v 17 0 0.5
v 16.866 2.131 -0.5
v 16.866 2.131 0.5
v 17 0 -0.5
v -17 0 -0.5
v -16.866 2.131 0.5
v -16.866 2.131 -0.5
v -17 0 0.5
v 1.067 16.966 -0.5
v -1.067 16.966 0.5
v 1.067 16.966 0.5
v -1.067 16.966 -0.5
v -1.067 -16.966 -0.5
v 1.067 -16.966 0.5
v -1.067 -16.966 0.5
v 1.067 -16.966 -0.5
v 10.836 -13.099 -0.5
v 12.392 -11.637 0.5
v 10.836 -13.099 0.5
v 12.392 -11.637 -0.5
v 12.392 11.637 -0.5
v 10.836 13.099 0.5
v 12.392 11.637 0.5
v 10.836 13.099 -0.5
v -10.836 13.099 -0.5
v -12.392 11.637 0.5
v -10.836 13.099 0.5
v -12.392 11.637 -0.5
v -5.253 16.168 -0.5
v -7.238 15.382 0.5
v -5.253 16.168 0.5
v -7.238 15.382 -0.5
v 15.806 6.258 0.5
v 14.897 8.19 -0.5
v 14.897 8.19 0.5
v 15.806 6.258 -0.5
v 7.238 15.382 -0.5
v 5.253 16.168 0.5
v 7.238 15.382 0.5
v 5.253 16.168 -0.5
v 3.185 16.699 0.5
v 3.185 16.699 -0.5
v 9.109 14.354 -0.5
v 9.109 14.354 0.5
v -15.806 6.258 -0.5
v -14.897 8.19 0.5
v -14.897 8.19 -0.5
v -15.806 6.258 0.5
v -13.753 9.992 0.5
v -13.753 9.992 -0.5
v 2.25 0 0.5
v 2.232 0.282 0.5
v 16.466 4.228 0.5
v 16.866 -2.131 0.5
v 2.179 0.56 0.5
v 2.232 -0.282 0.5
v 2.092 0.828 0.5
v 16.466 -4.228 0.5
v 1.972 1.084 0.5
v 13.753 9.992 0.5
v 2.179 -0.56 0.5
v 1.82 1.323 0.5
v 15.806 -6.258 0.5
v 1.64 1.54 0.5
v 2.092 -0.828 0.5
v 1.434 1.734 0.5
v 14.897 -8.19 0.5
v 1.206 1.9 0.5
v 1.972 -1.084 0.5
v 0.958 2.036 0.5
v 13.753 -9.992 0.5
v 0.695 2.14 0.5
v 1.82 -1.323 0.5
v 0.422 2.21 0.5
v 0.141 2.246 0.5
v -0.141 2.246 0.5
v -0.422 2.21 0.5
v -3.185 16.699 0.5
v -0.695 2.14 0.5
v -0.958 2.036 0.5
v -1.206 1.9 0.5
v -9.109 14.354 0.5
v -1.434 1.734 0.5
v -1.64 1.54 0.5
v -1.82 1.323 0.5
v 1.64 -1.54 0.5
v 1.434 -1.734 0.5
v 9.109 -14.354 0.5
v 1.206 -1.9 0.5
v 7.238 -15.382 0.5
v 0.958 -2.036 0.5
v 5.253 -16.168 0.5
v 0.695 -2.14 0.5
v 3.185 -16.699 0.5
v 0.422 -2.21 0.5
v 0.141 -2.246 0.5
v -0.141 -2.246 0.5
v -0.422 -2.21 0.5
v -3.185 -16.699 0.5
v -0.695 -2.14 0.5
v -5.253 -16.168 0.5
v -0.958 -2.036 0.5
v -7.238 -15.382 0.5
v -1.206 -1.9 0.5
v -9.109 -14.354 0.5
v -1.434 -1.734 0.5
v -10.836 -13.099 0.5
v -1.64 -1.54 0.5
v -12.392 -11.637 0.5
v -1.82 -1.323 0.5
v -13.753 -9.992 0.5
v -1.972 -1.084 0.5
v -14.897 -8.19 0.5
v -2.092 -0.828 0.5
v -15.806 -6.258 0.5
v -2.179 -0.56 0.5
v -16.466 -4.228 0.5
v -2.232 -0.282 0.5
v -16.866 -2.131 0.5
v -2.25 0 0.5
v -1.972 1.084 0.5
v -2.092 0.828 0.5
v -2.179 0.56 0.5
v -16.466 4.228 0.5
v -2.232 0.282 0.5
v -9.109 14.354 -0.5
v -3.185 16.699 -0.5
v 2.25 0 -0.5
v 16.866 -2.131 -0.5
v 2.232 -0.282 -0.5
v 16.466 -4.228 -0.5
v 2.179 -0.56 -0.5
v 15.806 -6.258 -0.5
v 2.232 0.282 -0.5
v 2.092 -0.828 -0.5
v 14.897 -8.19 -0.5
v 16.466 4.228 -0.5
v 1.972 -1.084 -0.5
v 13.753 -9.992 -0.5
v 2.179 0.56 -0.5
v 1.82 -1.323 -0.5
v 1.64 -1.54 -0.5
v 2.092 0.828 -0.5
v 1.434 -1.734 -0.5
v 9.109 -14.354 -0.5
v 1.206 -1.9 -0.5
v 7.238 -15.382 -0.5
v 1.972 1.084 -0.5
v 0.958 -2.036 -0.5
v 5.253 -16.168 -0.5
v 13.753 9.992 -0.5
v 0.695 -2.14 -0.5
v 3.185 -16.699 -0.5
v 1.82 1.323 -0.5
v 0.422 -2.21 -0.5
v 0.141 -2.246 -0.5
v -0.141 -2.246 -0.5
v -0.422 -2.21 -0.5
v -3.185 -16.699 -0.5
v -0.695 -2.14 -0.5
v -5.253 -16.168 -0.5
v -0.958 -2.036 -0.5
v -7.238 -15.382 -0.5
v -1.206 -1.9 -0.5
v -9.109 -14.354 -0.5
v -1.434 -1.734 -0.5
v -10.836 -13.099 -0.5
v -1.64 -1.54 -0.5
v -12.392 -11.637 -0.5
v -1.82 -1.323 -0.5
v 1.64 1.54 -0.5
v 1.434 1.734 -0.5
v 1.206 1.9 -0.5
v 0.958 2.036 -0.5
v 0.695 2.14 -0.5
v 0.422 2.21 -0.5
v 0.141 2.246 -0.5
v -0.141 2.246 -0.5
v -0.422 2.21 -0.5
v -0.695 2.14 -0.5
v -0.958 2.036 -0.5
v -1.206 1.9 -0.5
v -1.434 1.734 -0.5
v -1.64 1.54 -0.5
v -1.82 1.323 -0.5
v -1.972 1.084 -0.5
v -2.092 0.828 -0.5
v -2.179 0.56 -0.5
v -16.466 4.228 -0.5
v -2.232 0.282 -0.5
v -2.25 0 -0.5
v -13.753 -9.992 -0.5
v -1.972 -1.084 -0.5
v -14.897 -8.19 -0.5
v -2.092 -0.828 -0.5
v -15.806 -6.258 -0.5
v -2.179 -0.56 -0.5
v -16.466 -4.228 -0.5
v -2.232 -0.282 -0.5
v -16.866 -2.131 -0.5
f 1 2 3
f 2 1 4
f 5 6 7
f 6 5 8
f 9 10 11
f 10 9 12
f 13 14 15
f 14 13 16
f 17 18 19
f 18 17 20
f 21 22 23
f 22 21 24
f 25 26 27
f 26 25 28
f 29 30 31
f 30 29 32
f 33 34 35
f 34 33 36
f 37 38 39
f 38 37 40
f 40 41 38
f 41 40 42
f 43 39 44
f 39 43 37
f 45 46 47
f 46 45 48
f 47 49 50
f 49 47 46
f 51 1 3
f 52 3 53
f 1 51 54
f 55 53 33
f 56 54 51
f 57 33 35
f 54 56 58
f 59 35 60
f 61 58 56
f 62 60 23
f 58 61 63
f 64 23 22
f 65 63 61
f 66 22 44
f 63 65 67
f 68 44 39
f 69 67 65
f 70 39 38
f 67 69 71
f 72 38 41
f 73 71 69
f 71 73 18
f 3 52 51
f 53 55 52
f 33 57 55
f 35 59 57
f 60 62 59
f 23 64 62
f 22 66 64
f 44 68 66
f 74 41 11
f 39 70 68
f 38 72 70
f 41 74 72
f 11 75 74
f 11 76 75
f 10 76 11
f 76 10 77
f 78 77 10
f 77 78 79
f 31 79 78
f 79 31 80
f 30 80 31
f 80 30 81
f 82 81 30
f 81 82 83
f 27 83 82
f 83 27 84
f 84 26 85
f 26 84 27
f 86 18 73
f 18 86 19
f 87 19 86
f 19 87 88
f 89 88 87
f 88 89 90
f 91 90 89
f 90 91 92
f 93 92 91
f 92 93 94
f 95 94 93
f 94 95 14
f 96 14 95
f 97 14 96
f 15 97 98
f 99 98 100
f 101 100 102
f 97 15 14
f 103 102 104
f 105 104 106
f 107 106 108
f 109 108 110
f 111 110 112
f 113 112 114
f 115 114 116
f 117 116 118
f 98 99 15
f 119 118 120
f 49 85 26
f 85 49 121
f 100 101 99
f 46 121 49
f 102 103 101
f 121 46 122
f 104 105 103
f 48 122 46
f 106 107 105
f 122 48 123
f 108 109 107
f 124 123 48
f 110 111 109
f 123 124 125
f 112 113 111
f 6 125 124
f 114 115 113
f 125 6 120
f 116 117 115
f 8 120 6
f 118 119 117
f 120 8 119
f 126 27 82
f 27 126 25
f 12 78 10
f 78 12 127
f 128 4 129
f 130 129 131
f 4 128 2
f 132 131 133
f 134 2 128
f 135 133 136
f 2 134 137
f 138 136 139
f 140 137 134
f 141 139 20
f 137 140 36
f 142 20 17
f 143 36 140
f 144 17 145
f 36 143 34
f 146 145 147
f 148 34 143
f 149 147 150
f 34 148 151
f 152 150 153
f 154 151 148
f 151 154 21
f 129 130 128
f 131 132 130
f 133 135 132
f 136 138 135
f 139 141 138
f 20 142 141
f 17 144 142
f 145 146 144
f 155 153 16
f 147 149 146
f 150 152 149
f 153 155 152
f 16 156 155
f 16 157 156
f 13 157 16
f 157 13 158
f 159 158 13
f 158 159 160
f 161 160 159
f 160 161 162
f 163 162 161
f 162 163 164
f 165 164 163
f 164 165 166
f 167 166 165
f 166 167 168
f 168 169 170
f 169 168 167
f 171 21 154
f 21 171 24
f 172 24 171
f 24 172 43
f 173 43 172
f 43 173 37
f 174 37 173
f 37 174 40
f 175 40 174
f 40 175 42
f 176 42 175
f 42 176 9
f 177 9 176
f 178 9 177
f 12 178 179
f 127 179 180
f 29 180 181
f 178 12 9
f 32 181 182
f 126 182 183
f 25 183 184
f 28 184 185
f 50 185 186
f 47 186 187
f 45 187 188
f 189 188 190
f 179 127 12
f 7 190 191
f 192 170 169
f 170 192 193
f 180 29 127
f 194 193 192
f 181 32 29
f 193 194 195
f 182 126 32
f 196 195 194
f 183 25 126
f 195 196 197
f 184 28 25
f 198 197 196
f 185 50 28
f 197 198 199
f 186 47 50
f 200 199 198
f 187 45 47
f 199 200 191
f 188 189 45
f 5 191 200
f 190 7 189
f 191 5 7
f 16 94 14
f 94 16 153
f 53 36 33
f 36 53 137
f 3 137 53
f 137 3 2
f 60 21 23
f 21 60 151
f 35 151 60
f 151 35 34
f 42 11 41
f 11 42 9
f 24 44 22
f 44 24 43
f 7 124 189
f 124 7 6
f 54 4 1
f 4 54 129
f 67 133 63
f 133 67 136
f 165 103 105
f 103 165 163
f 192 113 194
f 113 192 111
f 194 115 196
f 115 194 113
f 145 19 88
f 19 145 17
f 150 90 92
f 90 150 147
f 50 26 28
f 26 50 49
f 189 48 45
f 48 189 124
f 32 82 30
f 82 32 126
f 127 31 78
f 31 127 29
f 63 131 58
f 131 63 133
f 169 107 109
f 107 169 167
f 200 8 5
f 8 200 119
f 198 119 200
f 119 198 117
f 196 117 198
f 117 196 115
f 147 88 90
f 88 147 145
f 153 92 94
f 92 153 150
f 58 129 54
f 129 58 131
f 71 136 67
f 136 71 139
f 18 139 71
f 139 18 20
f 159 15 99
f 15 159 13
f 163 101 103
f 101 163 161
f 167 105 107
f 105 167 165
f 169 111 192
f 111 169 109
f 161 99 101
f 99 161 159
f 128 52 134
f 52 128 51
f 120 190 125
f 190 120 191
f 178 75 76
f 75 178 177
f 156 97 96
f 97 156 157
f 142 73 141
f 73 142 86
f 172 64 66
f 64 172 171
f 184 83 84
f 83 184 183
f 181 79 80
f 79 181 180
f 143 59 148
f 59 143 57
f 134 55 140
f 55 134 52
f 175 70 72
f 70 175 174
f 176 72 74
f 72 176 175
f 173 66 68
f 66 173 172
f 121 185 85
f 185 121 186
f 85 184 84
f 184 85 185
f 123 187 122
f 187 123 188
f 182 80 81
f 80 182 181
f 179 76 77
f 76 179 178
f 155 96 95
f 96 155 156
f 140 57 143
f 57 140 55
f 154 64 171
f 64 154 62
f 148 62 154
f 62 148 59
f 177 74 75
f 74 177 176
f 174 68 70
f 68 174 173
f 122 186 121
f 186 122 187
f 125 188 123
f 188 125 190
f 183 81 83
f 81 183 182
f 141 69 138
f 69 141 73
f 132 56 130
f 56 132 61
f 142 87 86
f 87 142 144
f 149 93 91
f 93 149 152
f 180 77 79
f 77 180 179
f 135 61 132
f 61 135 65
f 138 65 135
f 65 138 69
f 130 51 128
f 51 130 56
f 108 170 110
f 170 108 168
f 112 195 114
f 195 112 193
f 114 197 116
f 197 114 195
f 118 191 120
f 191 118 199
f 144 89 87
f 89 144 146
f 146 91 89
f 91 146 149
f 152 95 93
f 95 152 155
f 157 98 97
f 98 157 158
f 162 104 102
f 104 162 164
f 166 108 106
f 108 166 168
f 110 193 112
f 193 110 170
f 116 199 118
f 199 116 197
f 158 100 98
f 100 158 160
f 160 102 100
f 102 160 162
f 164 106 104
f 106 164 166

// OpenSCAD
$fn = 50;


difference() {
	union() {
		translate(v = [0, 0, -0.5000000000]) {
			cylinder(h = 1, r = 17.0000000000);
		}
	}
	union() {
		translate(v = [0, 0, -100.0000000000]) {
			cylinder(h = 200, r = 2.2500000000);
		}
	}
}
